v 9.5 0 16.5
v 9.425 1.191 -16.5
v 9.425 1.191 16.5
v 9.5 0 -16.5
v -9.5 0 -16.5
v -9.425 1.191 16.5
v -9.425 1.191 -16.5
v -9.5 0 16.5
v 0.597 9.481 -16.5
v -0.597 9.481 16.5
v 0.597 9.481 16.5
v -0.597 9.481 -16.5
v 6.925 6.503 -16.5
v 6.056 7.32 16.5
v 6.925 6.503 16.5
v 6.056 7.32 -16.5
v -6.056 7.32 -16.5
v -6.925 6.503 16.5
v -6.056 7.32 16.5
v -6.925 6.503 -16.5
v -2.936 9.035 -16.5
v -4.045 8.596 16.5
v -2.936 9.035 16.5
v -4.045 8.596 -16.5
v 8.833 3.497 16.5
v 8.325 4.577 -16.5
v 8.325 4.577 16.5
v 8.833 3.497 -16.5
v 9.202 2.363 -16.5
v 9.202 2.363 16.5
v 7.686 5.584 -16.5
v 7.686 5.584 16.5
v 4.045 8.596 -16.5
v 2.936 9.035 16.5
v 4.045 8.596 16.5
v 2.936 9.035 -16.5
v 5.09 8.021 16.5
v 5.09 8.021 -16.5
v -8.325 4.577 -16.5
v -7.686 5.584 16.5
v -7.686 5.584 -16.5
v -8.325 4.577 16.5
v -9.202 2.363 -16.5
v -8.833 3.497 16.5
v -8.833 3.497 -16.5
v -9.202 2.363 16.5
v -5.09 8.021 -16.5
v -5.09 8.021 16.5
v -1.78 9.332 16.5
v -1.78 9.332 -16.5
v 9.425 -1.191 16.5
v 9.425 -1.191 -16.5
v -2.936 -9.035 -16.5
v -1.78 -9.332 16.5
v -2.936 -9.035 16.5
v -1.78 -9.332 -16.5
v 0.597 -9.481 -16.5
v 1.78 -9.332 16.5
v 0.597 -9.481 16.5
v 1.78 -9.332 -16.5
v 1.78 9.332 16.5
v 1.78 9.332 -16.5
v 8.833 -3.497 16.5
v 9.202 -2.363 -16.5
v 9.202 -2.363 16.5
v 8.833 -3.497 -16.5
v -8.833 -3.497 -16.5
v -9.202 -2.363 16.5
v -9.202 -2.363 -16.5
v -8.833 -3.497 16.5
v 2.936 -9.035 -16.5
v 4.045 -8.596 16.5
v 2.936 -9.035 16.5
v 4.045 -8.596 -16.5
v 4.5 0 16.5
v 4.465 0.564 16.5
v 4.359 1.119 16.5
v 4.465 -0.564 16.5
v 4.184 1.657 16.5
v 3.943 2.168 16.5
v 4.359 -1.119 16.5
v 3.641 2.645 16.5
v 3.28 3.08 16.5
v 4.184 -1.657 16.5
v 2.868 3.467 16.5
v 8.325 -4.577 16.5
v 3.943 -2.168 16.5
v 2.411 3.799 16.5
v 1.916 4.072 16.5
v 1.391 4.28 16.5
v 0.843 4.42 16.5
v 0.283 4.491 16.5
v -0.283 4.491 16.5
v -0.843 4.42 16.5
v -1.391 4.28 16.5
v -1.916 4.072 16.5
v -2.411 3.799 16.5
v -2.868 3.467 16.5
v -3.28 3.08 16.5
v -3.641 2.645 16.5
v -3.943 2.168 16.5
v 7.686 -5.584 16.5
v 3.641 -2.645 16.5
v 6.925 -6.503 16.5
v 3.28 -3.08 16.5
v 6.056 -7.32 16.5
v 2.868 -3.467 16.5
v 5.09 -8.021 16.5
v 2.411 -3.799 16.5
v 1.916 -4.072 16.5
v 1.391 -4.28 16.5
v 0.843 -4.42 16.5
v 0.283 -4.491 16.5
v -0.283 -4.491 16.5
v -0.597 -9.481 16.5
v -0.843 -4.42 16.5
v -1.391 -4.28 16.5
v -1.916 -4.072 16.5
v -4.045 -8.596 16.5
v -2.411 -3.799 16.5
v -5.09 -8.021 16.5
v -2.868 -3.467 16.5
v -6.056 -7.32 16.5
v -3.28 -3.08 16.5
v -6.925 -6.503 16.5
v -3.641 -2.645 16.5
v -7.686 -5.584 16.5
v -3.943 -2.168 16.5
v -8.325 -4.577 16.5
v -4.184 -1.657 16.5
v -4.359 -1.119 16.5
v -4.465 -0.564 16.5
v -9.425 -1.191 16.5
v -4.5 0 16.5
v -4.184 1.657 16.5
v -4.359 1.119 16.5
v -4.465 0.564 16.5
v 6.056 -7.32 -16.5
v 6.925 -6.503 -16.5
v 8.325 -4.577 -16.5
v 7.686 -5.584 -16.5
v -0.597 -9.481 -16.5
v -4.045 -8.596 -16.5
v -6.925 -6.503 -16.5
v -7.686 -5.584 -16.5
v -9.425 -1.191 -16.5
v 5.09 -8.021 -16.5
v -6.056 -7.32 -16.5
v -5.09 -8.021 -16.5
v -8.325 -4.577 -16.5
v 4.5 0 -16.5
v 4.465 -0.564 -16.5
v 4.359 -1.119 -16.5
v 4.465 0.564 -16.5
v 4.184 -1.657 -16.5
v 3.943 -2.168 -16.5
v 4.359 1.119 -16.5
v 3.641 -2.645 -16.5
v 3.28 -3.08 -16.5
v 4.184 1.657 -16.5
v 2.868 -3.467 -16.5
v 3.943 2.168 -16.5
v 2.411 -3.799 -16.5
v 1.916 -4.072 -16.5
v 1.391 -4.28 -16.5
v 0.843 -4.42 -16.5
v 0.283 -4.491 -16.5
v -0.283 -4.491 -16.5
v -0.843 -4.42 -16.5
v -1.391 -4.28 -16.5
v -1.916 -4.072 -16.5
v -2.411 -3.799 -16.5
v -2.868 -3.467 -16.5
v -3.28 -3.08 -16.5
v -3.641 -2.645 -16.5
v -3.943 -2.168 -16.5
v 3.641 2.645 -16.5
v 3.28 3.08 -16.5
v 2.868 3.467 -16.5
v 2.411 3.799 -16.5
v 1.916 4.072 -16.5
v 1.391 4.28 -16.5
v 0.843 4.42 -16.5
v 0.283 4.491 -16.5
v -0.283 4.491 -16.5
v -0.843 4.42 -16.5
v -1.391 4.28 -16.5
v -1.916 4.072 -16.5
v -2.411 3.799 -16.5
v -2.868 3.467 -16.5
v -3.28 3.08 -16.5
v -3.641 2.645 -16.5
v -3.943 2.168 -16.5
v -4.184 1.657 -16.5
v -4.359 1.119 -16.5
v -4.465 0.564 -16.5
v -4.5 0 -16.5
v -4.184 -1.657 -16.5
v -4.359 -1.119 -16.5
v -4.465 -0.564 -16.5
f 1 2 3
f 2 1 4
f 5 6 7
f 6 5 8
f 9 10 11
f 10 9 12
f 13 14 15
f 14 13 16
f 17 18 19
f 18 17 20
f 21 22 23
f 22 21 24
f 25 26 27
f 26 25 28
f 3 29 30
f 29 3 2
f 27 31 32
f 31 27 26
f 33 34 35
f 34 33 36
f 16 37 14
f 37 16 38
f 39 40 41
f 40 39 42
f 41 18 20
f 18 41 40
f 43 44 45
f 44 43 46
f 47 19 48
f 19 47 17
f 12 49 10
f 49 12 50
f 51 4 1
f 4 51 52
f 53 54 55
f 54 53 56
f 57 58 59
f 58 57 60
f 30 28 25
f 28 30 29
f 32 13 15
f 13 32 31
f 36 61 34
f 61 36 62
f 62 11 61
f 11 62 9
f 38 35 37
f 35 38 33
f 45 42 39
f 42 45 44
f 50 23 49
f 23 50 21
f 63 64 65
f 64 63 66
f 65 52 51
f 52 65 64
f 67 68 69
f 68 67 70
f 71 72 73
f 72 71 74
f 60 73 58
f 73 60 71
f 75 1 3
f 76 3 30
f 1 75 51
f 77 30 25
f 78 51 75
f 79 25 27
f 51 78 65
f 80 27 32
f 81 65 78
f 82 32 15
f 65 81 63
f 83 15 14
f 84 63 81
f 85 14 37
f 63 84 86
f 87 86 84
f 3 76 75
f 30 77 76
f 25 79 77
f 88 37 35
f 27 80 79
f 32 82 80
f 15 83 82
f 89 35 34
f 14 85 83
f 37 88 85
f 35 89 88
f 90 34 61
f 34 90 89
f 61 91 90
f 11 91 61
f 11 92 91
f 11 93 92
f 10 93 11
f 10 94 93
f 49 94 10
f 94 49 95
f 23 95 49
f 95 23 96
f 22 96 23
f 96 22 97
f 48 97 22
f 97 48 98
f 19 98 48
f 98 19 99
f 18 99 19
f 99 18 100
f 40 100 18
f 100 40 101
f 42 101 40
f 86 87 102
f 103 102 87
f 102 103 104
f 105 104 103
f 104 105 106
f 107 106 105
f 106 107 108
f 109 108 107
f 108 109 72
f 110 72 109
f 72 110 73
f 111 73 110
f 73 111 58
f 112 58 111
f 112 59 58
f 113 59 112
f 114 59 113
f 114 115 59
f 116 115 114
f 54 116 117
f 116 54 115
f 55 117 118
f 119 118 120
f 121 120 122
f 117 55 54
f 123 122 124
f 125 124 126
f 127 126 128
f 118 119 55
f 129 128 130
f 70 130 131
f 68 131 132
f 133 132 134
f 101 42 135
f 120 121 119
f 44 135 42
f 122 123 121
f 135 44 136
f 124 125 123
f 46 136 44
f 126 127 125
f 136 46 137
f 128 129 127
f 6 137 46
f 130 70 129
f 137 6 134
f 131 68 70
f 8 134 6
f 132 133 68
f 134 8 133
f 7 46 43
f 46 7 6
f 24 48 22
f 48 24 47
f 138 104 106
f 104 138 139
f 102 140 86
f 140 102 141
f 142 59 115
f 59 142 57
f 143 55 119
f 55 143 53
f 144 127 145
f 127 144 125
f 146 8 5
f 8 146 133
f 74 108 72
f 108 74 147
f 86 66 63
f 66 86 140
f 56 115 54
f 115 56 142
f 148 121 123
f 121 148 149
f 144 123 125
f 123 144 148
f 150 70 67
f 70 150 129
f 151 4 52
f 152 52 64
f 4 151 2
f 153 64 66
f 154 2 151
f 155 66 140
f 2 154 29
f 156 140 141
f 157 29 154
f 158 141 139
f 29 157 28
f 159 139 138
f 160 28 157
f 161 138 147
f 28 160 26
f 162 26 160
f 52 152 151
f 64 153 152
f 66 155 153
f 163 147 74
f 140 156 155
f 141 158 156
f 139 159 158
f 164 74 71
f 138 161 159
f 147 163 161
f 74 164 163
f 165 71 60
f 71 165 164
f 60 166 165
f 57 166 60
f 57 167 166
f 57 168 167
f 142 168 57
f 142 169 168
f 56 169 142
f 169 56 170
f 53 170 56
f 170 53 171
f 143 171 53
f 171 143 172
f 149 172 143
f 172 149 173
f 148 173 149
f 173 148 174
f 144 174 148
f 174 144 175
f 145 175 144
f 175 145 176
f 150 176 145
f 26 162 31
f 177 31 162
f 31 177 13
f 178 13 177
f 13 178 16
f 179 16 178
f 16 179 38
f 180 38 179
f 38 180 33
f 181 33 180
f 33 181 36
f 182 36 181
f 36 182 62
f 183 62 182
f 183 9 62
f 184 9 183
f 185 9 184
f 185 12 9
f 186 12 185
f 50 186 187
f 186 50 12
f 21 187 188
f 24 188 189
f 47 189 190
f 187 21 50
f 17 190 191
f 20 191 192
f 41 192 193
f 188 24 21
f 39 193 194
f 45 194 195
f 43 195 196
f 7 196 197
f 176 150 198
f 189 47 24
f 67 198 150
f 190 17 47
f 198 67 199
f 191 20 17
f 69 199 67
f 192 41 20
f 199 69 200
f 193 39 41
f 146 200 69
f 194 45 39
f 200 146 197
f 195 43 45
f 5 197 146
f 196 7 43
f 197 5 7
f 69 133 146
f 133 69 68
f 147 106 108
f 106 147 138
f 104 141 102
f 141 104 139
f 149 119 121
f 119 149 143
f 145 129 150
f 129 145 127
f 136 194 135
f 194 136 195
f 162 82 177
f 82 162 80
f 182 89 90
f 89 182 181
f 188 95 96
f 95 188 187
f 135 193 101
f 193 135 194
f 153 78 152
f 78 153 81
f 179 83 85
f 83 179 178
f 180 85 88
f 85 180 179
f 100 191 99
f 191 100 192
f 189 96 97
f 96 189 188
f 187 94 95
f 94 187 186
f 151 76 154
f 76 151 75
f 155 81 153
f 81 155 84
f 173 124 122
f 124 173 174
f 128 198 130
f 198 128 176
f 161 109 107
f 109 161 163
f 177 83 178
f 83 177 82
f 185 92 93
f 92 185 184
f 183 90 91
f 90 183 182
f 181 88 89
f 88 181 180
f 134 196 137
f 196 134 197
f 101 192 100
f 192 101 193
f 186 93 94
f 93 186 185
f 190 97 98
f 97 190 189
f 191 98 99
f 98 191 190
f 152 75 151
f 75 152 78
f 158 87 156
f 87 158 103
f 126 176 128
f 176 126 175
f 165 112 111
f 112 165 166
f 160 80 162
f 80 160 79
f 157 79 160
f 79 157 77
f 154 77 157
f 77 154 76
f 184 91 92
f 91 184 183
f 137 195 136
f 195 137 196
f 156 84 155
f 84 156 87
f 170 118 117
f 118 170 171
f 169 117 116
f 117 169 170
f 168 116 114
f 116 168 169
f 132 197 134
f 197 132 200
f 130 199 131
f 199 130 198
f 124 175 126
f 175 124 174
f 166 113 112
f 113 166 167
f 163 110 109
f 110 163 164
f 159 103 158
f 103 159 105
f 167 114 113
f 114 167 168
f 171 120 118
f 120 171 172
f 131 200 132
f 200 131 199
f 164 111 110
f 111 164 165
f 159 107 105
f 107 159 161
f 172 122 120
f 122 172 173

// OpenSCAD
$fn = 50;


difference() {
	union() {
		translate(v = [0, 0, -16.5000000000]) {
			cylinder(h = 33, r = 9.5000000000);
		}
	}
	union() {
		translate(v = [0, 0, -100.0000000000]) {
			cylinder(h = 200, r = 4.5000000000);
		}
	}
}
